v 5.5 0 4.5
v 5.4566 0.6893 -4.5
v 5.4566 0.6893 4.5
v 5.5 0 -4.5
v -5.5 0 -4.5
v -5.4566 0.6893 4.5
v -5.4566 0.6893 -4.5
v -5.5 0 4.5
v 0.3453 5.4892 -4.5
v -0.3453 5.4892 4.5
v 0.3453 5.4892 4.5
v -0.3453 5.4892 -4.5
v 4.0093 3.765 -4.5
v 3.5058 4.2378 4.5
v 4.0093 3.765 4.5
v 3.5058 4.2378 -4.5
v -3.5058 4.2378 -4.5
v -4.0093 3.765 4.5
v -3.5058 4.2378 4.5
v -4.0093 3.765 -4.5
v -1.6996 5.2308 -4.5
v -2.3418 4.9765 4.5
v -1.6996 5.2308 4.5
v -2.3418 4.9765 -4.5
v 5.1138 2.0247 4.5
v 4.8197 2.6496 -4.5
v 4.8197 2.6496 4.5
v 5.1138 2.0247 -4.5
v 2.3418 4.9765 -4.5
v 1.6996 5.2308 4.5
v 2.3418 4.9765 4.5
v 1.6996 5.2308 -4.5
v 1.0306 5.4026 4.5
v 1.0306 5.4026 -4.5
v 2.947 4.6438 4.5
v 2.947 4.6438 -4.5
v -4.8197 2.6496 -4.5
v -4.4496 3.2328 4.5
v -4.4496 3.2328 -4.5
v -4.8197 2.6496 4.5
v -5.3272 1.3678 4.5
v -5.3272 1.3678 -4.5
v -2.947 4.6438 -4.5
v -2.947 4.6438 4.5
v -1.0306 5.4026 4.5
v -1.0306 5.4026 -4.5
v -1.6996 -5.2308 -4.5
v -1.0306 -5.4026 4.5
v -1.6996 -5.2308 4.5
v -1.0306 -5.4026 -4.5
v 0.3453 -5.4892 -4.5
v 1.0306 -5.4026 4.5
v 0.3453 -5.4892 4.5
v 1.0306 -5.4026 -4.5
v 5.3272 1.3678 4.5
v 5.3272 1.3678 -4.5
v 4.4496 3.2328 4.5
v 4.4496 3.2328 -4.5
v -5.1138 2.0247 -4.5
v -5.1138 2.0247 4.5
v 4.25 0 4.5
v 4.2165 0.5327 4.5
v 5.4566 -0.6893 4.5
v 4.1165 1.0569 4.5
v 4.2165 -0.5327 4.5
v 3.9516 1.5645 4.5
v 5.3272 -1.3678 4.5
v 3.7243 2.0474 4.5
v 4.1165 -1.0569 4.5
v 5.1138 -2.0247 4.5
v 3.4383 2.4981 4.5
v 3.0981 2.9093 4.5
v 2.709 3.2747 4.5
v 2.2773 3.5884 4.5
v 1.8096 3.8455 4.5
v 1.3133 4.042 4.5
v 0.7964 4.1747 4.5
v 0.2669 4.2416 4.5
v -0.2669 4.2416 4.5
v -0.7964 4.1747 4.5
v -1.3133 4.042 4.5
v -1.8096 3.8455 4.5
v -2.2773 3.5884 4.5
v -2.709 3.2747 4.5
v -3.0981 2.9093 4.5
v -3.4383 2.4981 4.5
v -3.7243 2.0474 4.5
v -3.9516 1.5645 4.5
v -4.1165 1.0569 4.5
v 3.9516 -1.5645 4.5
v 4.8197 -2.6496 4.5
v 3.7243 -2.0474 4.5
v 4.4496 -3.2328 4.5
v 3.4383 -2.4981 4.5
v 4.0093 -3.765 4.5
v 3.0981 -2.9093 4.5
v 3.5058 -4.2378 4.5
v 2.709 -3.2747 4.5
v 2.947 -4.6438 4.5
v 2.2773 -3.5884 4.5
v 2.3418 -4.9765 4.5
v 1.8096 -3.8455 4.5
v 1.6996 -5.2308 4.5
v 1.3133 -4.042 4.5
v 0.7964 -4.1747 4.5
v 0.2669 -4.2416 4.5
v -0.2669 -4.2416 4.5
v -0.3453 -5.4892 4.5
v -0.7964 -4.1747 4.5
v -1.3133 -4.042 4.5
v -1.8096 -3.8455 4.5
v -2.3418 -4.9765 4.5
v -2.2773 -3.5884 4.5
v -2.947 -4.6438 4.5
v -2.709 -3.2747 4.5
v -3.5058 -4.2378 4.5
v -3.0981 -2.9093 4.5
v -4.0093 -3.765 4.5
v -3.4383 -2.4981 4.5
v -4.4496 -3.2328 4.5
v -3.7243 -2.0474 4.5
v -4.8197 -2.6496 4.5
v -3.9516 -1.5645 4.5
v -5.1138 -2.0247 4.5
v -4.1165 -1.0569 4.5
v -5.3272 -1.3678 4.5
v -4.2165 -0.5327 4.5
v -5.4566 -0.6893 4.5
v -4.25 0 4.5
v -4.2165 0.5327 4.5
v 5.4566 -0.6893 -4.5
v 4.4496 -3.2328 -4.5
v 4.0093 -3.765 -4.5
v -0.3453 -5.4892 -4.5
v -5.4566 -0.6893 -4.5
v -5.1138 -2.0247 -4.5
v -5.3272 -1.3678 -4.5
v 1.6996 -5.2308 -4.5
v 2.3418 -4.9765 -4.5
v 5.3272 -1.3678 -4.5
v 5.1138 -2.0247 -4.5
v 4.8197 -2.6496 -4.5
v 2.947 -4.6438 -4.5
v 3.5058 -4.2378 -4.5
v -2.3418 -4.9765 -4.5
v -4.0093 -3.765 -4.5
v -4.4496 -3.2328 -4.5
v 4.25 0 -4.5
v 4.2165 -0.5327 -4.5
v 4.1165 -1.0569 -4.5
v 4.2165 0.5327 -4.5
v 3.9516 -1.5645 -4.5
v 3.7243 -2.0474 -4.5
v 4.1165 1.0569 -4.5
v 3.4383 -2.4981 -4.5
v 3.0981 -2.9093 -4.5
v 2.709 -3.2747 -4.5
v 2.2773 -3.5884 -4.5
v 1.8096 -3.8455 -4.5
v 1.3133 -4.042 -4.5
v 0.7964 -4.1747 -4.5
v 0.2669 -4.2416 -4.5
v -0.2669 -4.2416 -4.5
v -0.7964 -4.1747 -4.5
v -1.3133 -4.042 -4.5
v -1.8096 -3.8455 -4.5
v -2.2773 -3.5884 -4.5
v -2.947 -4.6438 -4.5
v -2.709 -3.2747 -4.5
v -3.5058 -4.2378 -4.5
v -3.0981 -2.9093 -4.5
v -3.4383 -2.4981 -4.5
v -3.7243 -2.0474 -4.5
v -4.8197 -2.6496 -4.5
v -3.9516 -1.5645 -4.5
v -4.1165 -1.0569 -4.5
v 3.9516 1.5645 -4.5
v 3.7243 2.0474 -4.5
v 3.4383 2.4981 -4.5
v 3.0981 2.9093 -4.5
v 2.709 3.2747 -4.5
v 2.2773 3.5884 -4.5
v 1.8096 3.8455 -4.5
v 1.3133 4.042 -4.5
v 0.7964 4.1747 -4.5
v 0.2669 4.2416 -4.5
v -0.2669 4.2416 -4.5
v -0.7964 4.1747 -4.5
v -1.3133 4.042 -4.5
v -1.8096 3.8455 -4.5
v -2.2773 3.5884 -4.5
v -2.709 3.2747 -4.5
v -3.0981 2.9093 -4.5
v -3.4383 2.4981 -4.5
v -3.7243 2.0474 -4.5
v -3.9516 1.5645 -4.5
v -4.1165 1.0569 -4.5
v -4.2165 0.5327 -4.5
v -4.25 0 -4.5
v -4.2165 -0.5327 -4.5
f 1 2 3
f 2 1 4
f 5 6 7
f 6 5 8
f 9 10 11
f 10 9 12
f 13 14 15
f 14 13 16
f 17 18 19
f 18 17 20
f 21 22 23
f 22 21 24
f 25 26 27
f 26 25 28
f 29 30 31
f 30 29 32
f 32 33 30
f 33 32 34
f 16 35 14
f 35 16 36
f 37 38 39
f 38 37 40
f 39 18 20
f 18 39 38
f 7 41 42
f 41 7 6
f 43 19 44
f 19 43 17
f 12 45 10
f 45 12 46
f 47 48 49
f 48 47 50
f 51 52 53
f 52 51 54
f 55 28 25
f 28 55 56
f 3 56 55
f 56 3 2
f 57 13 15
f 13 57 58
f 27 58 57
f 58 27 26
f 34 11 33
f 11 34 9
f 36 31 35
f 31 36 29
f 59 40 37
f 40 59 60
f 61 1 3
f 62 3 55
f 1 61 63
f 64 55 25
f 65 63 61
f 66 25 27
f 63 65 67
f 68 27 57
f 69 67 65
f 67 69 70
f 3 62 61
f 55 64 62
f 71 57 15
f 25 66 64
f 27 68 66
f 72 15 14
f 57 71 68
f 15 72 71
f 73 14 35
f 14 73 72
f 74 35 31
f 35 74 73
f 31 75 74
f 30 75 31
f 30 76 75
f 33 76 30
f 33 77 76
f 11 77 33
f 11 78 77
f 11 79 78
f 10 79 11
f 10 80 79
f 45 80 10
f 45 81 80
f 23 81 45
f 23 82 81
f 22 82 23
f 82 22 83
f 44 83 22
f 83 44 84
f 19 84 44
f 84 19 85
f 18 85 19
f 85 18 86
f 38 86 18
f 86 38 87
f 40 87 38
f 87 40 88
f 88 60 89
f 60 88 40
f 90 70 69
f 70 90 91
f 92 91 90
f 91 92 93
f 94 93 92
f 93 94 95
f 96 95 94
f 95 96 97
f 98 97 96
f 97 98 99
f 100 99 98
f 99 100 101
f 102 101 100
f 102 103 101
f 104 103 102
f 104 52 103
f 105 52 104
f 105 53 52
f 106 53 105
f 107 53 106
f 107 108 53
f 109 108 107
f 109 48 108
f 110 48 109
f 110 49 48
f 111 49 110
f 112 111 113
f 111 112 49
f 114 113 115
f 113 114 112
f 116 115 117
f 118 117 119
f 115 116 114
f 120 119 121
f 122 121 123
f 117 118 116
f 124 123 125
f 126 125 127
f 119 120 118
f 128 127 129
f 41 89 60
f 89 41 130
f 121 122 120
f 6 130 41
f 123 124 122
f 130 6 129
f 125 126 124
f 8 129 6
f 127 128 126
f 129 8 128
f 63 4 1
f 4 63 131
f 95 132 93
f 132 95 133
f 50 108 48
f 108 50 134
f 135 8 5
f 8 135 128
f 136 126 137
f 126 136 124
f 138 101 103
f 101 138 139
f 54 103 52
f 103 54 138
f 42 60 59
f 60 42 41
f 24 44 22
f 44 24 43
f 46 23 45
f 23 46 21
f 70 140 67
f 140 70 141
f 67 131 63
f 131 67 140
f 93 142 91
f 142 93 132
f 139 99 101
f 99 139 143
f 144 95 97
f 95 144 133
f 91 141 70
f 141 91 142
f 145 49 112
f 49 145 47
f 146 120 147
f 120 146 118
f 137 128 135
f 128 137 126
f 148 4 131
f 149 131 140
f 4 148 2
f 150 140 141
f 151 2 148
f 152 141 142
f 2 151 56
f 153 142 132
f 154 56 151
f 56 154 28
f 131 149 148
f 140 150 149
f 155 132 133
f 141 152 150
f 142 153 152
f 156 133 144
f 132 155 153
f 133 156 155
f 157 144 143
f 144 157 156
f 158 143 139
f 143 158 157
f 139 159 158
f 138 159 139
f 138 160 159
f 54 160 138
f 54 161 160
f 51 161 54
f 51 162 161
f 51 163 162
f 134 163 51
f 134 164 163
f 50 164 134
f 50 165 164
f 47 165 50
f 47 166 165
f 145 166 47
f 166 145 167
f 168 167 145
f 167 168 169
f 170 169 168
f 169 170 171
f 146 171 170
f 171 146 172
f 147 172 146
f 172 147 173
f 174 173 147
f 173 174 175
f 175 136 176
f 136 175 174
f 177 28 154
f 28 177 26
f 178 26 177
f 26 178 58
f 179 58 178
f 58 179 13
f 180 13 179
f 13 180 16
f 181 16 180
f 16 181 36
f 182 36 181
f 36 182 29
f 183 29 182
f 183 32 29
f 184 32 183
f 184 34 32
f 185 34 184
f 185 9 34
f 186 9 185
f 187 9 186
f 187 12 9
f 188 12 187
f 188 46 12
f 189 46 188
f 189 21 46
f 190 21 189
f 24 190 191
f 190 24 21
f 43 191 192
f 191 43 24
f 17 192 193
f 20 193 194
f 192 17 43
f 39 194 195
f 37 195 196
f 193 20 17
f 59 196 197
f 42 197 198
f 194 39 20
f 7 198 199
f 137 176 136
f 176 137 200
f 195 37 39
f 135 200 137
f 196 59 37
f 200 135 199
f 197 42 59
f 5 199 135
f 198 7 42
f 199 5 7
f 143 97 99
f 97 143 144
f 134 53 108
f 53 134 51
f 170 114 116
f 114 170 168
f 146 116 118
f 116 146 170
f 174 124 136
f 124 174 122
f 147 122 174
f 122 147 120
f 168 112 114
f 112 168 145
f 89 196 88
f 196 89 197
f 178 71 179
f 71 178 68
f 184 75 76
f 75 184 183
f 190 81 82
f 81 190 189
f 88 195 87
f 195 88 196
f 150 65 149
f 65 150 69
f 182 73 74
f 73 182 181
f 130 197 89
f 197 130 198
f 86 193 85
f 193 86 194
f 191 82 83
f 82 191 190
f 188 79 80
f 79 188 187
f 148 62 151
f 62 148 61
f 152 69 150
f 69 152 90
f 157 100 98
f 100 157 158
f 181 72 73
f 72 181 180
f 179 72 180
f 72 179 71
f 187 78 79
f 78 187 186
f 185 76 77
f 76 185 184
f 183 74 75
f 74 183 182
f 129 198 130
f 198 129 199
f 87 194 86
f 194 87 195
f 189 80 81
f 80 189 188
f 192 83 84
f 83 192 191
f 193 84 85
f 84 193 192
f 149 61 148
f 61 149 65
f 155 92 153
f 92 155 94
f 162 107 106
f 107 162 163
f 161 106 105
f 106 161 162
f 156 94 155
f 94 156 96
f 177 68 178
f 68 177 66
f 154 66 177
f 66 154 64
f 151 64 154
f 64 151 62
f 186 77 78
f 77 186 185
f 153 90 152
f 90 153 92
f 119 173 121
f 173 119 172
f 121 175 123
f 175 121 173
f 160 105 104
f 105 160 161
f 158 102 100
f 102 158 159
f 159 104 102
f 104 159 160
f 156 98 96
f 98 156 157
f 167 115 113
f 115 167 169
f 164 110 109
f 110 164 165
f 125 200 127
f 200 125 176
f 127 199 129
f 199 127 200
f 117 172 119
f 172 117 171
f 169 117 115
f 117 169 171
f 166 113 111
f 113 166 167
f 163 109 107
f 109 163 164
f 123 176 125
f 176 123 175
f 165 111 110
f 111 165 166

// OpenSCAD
$fn = 50;


difference() {
	union() {
		translate(v = [0, 0, -4.5000000000]) {
			cylinder(h = 9, r = 5.5000000000);
		}
	}
	union() {
		translate(v = [0, 0, -100.0000000000]) {
			cylinder(h = 200, r = 4.2500000000);
		}
	}
}
